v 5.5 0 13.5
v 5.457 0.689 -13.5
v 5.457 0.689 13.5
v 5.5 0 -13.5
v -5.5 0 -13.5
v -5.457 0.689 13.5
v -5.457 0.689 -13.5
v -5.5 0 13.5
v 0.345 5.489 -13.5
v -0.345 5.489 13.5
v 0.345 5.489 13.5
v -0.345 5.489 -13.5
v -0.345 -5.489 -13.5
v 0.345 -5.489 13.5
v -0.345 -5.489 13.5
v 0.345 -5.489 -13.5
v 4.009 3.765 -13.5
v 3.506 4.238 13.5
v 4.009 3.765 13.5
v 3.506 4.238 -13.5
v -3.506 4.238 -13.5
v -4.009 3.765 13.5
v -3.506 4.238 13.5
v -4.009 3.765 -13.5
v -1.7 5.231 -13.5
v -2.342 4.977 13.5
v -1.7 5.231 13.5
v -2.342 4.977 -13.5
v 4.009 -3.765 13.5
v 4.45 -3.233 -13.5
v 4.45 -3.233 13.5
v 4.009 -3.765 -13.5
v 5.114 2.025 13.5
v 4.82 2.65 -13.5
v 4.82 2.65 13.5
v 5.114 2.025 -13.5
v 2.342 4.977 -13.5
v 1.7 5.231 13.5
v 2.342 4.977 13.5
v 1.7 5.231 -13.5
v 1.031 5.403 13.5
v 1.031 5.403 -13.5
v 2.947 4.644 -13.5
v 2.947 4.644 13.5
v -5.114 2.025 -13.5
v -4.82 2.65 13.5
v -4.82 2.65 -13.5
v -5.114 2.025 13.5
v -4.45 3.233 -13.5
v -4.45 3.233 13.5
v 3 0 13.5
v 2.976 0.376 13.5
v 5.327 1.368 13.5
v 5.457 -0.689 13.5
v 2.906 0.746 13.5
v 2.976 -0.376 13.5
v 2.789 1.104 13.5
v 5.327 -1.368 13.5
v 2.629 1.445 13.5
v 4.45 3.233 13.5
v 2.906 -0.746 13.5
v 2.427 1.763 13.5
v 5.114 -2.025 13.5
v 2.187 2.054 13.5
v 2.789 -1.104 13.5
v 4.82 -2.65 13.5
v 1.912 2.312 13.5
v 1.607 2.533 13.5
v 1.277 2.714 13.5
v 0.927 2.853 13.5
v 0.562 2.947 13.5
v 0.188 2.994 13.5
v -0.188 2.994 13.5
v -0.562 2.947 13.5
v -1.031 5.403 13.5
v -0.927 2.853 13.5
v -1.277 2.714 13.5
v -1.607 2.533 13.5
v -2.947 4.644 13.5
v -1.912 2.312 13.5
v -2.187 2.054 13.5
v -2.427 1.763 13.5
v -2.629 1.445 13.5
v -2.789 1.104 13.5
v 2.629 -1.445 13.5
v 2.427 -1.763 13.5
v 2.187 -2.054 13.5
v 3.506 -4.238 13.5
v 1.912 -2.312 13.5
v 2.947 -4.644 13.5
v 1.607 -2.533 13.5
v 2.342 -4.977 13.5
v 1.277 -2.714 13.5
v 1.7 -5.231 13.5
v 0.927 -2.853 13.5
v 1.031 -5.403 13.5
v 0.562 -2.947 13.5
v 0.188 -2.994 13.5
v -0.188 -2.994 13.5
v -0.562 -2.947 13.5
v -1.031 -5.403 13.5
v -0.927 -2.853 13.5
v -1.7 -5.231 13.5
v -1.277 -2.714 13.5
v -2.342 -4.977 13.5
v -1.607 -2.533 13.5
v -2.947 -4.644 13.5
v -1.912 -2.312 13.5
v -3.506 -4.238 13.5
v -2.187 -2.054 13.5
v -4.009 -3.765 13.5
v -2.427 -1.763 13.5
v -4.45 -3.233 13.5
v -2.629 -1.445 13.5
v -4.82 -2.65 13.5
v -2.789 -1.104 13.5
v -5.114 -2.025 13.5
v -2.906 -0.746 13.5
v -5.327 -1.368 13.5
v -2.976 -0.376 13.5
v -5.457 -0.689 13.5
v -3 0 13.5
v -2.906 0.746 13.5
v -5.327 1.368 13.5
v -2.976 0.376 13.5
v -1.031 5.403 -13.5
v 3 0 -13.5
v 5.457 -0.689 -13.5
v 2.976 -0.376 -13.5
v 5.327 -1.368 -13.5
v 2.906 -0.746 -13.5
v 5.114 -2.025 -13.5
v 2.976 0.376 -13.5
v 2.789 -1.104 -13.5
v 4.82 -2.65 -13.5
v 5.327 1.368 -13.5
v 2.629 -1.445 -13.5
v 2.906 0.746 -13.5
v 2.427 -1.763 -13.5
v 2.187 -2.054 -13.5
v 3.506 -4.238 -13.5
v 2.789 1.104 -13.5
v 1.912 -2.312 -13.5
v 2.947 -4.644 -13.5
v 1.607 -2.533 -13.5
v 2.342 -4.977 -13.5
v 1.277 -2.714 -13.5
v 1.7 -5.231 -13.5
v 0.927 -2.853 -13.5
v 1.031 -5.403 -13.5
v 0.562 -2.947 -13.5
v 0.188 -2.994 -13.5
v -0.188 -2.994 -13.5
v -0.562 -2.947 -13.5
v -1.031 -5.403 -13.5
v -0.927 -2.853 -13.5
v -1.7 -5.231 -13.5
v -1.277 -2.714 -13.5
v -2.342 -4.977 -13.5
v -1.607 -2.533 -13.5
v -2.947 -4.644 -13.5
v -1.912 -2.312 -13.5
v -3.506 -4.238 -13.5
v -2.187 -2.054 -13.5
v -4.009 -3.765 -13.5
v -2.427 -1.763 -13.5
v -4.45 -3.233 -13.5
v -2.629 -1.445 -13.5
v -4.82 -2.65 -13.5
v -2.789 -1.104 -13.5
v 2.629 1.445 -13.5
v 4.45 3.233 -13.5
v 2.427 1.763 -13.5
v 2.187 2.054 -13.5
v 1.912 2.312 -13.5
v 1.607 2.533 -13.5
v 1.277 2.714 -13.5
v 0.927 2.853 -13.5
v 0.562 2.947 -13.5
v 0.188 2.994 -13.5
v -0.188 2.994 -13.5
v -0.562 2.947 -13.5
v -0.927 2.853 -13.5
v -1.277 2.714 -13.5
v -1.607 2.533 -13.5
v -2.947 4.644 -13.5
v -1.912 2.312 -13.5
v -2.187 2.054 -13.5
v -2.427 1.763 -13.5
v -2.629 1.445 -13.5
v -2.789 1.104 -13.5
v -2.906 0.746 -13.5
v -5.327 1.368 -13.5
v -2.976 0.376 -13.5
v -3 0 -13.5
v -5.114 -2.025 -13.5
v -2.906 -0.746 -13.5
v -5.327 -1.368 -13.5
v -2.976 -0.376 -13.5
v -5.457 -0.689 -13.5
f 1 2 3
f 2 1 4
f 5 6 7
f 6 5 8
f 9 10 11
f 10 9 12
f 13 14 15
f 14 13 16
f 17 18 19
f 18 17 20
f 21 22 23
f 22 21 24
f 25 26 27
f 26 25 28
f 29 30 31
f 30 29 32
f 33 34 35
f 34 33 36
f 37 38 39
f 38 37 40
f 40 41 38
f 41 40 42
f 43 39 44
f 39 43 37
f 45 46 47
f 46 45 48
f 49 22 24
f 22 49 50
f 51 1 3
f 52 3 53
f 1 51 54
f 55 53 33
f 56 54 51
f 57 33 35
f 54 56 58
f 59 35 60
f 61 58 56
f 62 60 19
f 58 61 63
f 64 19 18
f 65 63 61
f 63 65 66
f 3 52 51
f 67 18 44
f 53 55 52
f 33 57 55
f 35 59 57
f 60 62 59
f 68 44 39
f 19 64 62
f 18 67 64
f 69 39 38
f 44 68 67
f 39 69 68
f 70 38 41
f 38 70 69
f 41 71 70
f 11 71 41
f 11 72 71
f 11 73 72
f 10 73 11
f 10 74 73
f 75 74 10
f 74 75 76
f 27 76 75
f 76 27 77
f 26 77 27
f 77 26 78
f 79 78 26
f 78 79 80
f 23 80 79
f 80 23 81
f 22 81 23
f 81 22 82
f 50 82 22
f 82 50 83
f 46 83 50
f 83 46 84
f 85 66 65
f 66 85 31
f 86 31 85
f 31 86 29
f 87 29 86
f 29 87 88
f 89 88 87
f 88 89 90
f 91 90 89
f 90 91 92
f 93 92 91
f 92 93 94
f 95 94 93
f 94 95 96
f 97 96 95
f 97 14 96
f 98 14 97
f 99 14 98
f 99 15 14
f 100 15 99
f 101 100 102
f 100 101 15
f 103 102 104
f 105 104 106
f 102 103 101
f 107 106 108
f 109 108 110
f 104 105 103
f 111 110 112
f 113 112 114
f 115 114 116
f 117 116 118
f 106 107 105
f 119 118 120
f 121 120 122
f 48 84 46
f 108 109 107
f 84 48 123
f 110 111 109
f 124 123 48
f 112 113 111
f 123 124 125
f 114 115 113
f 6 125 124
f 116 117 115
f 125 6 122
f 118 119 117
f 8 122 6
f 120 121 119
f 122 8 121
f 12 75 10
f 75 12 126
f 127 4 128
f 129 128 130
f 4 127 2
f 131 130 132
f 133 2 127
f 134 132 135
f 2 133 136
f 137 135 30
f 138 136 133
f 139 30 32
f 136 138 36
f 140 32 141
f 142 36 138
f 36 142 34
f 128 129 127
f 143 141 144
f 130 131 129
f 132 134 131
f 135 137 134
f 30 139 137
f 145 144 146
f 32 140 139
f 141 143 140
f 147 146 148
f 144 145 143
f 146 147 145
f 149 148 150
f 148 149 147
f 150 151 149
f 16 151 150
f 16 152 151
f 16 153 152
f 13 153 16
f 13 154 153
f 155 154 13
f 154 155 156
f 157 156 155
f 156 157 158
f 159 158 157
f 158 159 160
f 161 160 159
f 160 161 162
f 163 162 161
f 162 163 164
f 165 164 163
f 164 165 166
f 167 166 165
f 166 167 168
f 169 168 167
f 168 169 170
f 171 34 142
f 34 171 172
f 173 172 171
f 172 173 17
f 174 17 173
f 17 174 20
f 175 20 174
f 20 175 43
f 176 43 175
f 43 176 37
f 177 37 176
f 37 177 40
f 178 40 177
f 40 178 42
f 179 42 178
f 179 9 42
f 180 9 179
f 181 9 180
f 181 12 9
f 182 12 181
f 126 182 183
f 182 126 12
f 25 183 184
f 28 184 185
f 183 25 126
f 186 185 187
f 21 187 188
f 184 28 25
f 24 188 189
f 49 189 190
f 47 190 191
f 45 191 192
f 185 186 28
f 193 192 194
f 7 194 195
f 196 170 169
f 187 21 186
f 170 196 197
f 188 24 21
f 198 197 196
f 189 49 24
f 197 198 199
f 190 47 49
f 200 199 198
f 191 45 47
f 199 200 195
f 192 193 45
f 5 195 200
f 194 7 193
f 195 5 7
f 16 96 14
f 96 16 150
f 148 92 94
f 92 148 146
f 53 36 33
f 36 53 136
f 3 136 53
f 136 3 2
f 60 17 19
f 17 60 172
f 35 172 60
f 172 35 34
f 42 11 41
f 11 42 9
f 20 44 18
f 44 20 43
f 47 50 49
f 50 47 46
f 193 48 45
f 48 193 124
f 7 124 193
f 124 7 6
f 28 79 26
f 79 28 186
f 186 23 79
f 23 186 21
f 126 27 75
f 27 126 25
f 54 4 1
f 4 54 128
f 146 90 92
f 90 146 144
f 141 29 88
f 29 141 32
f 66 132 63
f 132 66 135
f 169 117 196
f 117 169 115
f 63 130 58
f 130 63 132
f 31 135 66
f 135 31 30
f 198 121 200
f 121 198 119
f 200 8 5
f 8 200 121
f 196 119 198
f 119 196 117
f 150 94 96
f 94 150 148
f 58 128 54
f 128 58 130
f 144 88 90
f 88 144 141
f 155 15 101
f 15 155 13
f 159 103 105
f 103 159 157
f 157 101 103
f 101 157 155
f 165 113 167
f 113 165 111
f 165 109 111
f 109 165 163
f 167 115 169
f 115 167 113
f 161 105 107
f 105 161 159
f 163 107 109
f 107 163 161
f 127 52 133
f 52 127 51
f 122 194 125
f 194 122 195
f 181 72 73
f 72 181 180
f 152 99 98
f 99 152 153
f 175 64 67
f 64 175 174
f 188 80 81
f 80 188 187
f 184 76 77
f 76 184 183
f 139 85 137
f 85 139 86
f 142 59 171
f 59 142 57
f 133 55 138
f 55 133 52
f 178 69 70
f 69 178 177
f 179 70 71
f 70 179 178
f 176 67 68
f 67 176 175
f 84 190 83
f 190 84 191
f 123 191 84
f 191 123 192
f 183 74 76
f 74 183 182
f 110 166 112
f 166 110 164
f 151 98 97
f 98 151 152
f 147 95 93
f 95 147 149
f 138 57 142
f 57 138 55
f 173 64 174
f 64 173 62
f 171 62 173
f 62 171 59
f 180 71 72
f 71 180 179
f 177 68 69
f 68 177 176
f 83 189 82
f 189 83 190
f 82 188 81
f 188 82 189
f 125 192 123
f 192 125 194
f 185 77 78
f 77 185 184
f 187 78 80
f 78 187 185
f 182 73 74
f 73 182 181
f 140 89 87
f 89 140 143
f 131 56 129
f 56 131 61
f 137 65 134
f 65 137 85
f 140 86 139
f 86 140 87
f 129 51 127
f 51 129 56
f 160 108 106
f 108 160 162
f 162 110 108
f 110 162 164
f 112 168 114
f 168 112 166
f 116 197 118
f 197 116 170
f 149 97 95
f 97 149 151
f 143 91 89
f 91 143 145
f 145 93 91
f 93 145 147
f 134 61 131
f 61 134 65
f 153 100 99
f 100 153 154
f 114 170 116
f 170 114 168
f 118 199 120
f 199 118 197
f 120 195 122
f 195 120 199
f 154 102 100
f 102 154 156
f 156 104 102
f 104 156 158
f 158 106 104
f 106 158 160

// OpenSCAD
$fn = 50;


difference() {
	union() {
		translate(v = [0, 0, -13.5000000000]) {
			cylinder(h = 27, r = 5.5000000000);
		}
	}
	union() {
		translate(v = [0, 0, -100.0000000000]) {
			cylinder(h = 200, r = 3);
		}
	}
}
